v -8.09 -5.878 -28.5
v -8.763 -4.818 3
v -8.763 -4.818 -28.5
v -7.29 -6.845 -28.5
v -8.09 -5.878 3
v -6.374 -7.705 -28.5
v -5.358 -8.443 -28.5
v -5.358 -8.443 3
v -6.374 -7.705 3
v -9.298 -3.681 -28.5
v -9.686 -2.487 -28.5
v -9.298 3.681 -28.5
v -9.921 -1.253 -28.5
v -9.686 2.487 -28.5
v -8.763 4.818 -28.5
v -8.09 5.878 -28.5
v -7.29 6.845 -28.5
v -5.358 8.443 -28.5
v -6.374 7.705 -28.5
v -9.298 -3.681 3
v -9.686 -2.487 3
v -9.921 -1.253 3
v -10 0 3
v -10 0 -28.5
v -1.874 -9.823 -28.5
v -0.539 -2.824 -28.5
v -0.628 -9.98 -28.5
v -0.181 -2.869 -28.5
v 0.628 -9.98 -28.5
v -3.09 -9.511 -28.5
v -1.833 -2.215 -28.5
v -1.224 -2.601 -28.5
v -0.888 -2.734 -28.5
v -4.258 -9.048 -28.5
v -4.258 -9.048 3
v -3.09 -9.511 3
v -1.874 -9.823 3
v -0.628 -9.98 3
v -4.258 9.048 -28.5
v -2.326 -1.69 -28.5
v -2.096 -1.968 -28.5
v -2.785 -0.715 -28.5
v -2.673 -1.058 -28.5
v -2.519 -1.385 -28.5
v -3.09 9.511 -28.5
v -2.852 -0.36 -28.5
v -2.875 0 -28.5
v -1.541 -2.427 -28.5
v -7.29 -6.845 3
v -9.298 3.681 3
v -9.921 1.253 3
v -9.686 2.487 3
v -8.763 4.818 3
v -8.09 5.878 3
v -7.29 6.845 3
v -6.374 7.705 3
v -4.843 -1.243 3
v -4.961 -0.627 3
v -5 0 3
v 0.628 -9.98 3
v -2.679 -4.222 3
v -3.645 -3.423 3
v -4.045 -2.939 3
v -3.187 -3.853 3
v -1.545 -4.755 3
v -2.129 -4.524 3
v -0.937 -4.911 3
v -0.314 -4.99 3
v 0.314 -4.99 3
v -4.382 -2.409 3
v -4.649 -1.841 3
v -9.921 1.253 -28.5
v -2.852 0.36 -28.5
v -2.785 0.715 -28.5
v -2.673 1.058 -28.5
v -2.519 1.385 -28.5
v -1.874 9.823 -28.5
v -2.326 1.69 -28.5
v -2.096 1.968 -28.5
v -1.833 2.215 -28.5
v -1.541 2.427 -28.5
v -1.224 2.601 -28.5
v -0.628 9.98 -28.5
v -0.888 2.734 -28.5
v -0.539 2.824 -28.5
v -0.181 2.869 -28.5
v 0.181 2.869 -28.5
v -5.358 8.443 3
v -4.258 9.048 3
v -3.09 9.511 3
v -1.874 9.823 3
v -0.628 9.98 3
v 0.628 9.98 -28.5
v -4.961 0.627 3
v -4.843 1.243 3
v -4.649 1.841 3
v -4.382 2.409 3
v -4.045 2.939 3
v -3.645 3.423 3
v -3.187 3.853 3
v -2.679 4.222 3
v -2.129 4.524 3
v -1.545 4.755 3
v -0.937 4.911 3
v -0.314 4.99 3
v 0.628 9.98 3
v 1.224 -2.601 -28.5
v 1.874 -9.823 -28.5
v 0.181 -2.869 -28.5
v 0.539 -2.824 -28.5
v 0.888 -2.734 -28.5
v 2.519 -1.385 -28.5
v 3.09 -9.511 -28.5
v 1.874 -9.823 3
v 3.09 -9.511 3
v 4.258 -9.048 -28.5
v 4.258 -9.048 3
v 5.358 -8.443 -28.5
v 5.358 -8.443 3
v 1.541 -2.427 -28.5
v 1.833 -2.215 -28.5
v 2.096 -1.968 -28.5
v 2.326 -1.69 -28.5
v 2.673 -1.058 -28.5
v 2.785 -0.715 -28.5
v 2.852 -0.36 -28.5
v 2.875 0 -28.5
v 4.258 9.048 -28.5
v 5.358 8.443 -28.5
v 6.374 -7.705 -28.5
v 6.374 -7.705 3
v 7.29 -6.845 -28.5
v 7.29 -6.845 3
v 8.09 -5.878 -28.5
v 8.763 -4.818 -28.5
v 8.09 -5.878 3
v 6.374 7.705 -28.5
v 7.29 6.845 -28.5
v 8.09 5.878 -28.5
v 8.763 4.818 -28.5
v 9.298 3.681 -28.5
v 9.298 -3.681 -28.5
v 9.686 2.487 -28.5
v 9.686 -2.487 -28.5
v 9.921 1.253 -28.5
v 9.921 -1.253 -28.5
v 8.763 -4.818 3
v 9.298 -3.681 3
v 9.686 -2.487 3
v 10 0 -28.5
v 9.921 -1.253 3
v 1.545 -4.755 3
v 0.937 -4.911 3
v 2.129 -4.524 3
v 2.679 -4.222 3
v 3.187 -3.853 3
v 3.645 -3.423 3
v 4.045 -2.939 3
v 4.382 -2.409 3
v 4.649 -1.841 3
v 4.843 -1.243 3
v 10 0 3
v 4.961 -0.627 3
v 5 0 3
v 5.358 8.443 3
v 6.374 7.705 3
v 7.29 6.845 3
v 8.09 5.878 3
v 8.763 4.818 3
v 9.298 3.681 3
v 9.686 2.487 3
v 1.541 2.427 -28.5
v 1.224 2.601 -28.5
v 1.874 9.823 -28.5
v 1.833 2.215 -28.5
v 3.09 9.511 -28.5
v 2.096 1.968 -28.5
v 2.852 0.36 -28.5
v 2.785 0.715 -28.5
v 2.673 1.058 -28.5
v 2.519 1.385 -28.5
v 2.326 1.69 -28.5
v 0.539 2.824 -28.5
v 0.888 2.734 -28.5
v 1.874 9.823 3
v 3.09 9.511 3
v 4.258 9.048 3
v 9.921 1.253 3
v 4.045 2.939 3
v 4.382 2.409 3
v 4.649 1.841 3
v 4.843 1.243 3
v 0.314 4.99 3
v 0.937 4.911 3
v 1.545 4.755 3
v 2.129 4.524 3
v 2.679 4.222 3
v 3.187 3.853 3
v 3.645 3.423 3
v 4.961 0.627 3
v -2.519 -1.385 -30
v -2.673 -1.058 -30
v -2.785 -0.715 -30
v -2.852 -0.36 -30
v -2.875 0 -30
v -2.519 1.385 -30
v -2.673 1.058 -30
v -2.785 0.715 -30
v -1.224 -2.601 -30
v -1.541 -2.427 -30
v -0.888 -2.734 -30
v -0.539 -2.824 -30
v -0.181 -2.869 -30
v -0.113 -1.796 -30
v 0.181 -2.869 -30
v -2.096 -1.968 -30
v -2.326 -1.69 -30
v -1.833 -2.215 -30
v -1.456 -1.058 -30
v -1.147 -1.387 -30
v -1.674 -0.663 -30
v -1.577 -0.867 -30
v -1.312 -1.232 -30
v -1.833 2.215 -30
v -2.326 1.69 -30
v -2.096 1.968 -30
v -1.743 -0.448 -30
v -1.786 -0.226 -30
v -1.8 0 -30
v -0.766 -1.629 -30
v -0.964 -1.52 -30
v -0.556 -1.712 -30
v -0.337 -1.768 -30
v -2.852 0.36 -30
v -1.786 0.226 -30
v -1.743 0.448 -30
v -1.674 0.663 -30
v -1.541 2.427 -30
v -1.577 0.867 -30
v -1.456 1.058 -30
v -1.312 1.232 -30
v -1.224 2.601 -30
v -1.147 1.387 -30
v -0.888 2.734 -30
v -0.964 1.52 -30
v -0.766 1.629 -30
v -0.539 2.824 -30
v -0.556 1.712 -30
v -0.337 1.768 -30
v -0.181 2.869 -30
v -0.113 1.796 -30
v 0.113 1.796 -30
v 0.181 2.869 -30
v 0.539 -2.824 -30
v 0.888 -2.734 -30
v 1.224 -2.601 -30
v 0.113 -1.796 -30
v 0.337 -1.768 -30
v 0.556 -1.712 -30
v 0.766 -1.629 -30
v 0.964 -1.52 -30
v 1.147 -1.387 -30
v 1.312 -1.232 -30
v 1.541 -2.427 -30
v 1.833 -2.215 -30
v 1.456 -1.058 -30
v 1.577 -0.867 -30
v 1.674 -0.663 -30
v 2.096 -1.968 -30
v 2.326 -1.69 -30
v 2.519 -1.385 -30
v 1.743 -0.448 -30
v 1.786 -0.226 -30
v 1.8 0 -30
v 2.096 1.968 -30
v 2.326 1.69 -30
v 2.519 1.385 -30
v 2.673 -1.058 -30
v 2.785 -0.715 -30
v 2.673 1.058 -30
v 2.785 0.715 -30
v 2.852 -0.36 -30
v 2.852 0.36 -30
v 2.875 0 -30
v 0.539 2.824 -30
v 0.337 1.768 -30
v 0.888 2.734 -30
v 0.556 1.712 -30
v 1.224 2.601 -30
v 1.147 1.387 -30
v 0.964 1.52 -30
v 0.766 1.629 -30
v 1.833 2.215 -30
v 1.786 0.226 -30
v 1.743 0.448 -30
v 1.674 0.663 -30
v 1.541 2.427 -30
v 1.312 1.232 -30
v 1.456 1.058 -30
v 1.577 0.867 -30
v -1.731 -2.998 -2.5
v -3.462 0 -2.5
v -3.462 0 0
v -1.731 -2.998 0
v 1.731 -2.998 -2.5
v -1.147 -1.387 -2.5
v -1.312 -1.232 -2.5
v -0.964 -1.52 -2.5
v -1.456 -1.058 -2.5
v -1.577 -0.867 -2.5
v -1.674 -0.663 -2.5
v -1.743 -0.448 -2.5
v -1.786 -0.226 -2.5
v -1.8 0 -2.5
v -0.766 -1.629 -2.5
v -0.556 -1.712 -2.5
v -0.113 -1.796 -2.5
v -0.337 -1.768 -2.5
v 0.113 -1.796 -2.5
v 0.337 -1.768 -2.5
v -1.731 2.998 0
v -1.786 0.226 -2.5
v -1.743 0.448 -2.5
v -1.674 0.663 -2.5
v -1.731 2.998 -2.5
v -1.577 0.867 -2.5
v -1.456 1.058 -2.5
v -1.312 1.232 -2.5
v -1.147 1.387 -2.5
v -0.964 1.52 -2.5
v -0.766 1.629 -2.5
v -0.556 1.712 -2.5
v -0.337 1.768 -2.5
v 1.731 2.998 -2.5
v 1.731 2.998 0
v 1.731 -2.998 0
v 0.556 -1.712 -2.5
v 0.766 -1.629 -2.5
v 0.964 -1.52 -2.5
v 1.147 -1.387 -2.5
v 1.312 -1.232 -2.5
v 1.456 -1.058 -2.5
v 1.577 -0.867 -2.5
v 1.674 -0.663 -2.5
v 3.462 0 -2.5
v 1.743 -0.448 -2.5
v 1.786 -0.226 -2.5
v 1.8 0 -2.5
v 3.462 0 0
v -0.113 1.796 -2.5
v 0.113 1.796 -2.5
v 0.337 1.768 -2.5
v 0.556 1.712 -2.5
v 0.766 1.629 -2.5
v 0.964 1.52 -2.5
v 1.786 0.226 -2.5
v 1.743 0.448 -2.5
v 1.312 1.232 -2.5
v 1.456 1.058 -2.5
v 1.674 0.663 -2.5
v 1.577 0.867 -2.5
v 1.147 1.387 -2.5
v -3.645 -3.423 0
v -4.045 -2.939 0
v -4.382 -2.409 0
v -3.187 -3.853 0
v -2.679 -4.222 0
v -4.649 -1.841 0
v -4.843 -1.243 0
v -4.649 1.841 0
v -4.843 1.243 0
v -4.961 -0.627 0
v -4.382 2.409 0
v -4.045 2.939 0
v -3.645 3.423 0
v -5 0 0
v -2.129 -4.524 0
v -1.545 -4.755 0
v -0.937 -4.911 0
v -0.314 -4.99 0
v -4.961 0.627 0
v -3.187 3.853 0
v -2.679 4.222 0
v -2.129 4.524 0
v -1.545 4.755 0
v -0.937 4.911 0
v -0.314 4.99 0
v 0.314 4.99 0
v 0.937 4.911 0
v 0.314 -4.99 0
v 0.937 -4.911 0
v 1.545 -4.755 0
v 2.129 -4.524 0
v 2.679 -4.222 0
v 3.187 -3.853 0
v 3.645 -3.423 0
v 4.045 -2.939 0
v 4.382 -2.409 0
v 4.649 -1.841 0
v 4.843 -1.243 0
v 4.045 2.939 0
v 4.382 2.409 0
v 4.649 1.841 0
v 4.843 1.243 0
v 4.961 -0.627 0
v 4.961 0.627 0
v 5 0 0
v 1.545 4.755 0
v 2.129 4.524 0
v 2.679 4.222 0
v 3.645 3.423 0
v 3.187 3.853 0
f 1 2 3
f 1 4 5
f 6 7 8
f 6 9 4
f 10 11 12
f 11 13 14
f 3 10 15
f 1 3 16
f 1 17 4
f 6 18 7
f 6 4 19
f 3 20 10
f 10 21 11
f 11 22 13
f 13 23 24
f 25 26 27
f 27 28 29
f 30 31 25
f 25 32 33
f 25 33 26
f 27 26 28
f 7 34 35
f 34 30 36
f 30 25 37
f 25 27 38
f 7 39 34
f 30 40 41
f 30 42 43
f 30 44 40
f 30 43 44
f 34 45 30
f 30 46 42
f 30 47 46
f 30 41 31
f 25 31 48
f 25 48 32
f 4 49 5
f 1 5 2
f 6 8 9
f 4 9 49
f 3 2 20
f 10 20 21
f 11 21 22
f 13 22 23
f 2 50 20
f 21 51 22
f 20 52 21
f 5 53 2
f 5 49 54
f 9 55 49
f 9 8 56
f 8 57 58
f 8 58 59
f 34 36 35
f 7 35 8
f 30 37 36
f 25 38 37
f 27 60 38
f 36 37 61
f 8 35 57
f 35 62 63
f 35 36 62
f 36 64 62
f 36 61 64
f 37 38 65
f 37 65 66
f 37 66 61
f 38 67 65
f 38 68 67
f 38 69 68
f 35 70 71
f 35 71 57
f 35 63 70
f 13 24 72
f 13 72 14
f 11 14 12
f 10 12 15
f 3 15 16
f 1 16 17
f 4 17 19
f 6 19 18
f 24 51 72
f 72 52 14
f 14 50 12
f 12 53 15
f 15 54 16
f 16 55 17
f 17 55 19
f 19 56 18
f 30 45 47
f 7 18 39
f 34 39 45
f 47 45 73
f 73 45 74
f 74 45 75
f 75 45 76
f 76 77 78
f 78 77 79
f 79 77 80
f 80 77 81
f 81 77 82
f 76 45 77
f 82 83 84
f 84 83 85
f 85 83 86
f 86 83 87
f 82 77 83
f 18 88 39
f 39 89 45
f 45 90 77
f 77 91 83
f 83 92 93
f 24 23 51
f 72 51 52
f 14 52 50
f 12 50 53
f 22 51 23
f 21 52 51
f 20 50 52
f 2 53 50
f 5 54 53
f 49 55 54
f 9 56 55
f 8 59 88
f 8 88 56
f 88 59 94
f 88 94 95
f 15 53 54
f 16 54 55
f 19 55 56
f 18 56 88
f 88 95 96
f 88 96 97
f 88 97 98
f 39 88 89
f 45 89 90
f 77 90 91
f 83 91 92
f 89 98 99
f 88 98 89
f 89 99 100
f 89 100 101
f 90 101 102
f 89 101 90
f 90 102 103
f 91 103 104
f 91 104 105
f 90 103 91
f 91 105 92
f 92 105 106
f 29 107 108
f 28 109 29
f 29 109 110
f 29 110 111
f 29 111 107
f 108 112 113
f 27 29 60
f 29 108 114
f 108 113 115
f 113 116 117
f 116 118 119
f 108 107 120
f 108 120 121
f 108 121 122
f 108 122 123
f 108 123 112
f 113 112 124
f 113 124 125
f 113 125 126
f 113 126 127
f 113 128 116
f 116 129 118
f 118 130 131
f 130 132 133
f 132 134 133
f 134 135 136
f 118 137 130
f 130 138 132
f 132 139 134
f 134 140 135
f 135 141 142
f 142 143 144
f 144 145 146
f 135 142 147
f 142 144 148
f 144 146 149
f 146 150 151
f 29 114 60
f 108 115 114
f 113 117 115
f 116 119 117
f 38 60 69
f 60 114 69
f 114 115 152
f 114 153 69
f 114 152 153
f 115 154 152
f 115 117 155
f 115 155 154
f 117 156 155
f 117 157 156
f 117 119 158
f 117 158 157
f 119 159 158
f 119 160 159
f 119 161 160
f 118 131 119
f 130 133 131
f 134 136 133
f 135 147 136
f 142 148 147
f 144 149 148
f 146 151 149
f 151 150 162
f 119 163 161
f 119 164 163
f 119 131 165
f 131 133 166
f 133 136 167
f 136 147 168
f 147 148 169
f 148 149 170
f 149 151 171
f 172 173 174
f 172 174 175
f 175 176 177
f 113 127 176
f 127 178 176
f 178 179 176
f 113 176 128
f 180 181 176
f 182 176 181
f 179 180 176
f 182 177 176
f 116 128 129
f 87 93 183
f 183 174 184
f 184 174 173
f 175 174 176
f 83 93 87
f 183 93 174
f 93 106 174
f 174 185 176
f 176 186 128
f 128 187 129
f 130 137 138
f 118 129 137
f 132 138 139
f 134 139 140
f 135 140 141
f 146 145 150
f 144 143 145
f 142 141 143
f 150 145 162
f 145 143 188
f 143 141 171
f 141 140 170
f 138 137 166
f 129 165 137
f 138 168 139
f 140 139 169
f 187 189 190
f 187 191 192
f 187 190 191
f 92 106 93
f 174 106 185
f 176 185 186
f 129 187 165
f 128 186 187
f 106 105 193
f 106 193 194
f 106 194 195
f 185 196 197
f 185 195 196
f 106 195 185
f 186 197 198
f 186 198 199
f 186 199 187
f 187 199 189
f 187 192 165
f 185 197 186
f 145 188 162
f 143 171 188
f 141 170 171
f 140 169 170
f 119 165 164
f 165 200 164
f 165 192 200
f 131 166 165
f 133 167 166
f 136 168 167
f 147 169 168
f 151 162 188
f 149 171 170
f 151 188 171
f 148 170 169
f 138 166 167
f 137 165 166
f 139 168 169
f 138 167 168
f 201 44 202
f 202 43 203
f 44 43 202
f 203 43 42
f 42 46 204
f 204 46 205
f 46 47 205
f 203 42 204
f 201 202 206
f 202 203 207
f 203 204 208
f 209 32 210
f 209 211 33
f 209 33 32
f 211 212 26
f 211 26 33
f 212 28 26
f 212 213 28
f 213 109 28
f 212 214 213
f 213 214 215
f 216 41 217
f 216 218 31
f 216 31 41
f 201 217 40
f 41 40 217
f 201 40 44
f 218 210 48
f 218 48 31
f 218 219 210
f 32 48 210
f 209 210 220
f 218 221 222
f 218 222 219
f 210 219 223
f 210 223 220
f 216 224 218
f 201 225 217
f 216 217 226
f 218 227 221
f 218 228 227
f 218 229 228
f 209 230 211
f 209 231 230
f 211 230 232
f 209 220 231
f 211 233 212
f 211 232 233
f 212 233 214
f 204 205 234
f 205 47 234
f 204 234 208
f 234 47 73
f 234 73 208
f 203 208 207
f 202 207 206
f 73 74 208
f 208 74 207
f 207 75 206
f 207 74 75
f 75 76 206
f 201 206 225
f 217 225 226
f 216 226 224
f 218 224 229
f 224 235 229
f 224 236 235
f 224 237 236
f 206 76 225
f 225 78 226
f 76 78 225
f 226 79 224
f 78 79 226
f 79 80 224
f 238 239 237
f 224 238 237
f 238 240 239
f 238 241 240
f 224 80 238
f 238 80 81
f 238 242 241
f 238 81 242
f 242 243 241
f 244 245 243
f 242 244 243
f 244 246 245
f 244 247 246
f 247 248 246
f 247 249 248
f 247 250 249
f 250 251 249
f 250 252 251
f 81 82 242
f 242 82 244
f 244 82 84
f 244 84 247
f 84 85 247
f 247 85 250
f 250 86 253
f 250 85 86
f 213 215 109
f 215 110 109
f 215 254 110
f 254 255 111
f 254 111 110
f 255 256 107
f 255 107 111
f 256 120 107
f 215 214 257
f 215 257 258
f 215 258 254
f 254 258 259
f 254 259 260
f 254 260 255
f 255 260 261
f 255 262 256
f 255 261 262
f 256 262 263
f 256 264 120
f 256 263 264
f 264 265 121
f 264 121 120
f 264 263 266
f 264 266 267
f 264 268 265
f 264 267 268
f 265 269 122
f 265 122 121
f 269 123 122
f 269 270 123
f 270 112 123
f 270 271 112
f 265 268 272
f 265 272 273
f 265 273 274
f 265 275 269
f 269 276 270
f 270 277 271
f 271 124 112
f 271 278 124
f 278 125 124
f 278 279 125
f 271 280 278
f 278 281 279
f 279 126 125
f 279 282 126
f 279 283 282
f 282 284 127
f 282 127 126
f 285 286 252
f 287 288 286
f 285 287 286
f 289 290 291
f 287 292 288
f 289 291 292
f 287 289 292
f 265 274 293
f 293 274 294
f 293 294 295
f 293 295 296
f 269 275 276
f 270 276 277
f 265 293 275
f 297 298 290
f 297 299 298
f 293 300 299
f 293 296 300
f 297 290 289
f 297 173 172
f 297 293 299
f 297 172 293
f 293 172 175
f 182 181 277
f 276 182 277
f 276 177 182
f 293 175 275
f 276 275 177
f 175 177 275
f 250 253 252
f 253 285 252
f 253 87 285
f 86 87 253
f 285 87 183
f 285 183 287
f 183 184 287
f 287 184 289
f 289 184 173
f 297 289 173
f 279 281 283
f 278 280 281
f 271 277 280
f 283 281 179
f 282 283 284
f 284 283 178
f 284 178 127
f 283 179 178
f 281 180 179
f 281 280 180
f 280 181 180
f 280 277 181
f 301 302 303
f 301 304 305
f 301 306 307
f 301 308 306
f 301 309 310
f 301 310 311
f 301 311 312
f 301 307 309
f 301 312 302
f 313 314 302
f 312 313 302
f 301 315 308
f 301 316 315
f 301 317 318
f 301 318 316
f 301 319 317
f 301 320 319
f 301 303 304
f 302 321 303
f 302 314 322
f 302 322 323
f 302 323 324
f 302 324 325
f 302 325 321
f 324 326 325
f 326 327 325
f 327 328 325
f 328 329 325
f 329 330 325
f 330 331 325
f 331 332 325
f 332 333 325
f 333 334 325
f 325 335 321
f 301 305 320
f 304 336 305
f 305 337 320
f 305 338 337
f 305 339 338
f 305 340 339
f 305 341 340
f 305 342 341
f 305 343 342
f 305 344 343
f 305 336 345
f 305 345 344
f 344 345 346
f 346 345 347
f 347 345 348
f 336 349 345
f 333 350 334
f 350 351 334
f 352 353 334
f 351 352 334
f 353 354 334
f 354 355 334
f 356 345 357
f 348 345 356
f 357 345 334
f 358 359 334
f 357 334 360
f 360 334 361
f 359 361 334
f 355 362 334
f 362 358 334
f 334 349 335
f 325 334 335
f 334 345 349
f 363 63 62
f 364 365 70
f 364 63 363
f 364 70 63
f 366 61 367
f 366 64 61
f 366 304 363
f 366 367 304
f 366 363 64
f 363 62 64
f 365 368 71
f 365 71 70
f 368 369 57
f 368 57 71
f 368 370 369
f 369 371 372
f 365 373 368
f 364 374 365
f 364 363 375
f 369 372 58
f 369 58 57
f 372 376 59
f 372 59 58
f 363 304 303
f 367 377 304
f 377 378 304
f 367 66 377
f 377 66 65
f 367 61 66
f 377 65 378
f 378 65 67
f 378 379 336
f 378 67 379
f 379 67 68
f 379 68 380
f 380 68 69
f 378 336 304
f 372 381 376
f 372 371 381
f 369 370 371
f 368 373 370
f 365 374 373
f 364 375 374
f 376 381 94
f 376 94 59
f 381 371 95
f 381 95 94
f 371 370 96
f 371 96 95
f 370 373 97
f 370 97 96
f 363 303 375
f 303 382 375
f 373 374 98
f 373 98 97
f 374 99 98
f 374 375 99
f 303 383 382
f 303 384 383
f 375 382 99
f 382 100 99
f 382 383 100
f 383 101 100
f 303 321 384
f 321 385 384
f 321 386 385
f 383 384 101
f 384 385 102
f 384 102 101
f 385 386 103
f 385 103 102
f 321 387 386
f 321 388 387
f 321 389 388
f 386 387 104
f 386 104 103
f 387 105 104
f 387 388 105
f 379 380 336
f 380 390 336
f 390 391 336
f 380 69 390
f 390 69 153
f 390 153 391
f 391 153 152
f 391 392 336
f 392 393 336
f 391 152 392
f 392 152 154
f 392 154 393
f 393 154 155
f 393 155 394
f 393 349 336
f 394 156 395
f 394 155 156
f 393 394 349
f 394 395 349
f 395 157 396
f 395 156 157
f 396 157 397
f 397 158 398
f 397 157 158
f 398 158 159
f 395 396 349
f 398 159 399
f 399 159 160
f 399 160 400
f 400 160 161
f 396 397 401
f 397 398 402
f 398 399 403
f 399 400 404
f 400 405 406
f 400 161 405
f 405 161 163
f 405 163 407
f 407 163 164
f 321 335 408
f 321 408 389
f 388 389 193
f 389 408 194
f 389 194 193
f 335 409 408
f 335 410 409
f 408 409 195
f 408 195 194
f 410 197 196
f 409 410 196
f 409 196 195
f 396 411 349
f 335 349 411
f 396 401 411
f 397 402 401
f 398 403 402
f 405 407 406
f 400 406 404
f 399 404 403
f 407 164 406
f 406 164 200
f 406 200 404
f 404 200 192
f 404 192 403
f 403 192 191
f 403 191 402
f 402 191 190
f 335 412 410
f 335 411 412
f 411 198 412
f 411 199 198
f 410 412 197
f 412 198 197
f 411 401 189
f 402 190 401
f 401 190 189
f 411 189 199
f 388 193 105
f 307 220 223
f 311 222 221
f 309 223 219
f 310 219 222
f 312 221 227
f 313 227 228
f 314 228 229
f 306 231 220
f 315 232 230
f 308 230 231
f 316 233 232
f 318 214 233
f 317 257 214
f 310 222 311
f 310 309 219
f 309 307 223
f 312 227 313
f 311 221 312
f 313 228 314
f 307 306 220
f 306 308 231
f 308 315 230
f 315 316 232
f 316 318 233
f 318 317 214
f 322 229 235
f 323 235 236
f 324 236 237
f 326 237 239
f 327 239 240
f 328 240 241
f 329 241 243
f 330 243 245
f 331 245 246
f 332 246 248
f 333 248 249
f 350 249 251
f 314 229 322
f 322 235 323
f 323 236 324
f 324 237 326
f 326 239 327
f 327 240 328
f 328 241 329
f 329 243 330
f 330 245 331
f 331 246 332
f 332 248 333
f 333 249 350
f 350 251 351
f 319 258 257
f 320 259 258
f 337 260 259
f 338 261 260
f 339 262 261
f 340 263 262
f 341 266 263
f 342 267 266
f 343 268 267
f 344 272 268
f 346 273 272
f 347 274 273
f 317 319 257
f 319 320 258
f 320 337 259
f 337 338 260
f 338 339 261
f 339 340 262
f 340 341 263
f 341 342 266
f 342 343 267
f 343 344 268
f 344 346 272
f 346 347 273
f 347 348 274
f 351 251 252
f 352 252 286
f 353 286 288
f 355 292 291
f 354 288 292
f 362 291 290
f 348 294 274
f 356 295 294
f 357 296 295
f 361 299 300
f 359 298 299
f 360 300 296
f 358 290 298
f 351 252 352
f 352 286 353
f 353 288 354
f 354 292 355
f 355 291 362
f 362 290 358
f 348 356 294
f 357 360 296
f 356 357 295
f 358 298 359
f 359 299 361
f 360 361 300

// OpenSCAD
$fn = 50;


difference() {
	union() {
		translate(v = [0, 0, -28.5000000000]) {
			cylinder(h = 31.5000000000, r = 10.0000000000);
		}
		#translate(v = [0, 0, -30.0000000000]) {
			cylinder(h = 30, r = 2.8750000000);
		}
	}
	union() {
		translate(v = [0, 0, 0]) {
			rotate(a = [0, 0, 0]) {
				difference() {
					union() {
						translate(v = [0, 0, -2.5000000000]) {
							linear_extrude(height = 2.5000000000) {
								polygon(points = [[3.4620000000, 0.0000000000], [1.7310000000, 2.9981799479], [-1.7310000000, 2.9981799479], [-3.4620000000, 0.0000000000], [-1.7310000000, -2.9981799479], [1.7310000000, -2.9981799479]]);
							}
						}
					}
					union();
				}
			}
		}
		#cylinder(h = 3, r = 5.0000000000);
		#translate(v = [0, 0, -100.0000000000]) {
			cylinder(h = 200, r = 1.8000000000);
		}
	}
}
